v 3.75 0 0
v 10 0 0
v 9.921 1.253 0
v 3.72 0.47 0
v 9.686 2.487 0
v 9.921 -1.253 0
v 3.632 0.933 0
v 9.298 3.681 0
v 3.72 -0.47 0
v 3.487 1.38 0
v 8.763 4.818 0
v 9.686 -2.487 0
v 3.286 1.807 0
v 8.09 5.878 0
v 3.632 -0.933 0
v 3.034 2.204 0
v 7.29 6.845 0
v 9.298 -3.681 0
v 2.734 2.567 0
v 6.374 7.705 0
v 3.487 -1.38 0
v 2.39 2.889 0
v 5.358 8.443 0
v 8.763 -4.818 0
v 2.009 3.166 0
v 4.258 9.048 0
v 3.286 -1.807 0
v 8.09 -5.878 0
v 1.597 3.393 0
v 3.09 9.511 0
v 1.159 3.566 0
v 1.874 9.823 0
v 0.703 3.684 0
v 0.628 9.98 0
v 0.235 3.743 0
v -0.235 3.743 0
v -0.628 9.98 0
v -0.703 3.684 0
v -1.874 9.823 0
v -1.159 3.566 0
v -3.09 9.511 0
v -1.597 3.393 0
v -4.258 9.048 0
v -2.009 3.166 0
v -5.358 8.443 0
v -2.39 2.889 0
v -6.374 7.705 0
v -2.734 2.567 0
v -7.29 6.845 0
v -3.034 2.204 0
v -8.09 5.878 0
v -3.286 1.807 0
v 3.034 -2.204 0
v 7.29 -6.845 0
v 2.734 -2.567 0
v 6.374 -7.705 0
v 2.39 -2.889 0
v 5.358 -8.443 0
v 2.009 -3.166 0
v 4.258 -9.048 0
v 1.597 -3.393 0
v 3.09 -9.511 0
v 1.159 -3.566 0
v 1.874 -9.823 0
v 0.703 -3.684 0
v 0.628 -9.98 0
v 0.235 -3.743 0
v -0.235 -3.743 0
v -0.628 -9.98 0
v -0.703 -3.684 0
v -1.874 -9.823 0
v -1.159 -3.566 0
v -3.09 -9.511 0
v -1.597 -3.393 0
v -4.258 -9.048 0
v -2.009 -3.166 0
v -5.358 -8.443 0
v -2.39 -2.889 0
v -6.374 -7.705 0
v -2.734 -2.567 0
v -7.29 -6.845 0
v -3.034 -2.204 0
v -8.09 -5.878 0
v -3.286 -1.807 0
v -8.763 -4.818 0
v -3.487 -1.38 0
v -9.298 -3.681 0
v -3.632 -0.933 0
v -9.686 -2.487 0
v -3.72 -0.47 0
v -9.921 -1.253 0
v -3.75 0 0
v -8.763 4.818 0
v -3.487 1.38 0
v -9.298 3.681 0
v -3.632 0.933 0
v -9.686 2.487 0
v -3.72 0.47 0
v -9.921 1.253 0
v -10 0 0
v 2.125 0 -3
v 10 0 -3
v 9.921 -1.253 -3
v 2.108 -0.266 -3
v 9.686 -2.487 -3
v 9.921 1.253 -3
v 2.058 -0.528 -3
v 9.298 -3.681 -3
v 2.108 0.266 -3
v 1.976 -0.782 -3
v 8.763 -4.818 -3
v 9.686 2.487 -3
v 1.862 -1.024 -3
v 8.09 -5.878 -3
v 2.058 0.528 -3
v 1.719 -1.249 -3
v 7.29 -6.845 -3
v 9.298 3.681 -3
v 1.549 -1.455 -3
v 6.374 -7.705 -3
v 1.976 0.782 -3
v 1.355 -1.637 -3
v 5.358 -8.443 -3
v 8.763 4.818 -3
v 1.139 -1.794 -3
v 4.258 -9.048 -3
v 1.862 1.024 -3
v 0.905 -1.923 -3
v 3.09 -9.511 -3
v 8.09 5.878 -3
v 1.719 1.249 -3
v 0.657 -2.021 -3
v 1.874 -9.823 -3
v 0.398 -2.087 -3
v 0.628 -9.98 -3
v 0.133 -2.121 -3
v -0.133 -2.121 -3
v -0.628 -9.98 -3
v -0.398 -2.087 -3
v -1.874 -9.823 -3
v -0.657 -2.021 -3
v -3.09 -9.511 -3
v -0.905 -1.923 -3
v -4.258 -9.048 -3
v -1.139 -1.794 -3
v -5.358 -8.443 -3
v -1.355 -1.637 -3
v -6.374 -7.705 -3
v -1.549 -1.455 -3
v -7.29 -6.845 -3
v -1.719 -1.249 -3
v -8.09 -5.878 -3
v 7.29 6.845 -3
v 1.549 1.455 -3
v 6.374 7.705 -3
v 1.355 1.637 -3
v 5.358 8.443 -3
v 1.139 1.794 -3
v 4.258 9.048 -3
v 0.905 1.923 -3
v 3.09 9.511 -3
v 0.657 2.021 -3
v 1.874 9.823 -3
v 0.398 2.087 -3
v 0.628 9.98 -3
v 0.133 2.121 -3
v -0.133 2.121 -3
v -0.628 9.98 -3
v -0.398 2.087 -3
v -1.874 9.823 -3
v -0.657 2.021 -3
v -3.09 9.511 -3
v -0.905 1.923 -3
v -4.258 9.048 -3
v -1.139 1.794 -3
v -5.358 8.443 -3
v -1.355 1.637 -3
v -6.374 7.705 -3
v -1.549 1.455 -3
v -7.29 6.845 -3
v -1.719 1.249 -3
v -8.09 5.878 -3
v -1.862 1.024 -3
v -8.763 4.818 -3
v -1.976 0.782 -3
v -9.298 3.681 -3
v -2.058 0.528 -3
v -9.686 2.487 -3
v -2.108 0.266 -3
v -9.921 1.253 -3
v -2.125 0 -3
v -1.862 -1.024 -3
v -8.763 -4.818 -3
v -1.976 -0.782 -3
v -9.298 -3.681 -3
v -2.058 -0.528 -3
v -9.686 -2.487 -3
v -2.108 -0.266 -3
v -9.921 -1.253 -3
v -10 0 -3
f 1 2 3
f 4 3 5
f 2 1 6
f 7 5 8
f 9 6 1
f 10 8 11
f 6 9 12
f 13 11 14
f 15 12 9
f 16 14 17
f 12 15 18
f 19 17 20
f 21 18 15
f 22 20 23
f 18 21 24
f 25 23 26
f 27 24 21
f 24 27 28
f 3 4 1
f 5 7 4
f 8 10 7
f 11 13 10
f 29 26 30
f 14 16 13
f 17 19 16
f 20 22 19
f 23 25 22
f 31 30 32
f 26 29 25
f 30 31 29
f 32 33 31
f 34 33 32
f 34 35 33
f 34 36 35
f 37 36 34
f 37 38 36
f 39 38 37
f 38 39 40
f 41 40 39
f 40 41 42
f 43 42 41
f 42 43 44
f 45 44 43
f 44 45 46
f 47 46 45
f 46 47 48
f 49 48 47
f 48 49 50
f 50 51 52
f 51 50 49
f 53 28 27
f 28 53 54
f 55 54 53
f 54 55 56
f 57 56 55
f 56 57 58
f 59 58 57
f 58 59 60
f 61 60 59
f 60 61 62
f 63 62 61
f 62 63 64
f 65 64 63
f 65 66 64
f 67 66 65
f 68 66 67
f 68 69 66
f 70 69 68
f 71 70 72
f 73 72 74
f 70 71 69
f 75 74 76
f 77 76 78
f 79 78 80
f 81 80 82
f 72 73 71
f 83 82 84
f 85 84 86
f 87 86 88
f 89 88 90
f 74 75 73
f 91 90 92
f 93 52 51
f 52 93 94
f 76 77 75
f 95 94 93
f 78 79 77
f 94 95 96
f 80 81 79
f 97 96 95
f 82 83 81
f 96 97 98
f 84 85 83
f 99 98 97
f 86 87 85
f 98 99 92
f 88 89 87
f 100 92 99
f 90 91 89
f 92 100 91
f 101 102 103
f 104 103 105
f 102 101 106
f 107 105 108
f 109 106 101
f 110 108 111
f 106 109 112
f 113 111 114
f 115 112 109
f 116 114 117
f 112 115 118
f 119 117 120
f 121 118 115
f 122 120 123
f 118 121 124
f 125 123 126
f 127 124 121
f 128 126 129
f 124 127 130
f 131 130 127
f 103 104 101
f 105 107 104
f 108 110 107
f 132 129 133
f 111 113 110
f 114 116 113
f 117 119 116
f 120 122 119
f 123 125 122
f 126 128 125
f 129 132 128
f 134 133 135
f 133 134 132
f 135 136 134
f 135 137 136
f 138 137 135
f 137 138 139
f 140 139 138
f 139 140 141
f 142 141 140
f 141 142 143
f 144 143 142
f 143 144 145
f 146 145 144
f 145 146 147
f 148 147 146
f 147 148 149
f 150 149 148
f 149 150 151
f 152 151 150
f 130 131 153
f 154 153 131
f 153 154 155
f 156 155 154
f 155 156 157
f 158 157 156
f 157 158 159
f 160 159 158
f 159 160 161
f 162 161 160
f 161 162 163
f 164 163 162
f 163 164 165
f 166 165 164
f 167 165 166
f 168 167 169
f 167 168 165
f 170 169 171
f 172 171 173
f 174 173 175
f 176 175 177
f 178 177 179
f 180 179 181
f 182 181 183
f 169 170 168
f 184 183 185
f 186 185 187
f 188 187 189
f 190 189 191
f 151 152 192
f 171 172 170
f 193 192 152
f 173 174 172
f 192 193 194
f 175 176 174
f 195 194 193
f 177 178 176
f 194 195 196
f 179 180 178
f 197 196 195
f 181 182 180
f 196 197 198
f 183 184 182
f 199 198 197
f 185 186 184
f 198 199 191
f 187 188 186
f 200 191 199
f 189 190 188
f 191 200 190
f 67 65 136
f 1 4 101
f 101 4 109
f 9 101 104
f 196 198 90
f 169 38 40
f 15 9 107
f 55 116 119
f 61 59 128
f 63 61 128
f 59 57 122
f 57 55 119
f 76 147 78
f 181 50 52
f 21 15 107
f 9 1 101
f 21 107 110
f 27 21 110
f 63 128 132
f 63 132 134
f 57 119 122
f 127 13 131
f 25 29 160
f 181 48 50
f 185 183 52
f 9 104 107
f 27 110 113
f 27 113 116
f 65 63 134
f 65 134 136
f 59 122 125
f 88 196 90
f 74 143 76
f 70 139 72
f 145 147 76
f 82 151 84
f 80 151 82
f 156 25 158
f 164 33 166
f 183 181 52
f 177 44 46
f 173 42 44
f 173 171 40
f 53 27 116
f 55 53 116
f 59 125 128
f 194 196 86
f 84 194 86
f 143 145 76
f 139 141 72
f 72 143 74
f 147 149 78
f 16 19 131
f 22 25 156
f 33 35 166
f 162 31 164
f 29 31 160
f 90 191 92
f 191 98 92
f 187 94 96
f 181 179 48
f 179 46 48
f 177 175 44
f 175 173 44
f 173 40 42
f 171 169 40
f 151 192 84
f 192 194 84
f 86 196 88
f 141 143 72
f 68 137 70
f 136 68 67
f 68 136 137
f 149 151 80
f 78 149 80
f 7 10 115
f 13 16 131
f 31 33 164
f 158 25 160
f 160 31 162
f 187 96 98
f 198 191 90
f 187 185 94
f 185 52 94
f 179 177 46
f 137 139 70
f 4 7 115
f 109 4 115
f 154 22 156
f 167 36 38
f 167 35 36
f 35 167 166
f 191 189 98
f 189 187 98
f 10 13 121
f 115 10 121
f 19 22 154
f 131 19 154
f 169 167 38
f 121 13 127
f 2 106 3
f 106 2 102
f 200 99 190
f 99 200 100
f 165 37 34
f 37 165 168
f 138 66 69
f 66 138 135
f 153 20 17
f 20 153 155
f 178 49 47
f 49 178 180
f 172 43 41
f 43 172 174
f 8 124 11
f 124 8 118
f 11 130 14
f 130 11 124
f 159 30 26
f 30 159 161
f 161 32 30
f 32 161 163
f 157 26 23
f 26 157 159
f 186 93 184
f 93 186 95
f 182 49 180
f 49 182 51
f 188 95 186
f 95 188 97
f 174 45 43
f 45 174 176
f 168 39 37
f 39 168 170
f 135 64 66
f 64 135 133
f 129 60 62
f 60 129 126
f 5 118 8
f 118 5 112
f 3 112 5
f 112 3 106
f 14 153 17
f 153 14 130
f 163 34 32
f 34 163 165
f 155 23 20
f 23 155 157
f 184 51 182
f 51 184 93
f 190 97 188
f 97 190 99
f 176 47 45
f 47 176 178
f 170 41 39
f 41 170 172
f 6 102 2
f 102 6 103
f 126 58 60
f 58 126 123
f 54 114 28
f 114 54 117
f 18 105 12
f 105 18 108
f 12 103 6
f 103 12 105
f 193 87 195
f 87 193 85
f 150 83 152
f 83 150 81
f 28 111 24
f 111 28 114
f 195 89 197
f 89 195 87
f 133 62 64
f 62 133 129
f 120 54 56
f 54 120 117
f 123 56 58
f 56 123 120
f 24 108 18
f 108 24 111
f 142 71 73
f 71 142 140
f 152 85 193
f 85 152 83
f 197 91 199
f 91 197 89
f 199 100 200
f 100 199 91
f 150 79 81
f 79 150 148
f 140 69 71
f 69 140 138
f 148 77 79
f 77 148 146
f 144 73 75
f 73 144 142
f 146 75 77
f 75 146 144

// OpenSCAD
$fn = 50;


difference() {
	union() {
		translate(v = [0, 0, -3.0000000000]) {
			cylinder(h = 3, r = 10.0000000000);
		}
	}
	union() {
		translate(v = [0, 0, 0]) {
			rotate(a = [0, 0, 0]) {
				difference() {
					union() {
						#translate(v = [0, 0, -3.0000000000]) {
							cylinder(h = 3, r = 2.0000000000);
						}
						#translate(v = [0, 0, -3]) {
							cylinder(h = 3, r1 = 2.1250000000, r2 = 3.7500000000);
						}
						#translate(v = [0, 0, -3.0000000000]) {
							cylinder(h = 3, r = 2.1250000000);
						}
						#translate(v = [0, 0, -3.0000000000]) {
							cylinder(h = 3, r = 2.0000000000);
						}
					}
					union();
				}
			}
		}
	}
}
